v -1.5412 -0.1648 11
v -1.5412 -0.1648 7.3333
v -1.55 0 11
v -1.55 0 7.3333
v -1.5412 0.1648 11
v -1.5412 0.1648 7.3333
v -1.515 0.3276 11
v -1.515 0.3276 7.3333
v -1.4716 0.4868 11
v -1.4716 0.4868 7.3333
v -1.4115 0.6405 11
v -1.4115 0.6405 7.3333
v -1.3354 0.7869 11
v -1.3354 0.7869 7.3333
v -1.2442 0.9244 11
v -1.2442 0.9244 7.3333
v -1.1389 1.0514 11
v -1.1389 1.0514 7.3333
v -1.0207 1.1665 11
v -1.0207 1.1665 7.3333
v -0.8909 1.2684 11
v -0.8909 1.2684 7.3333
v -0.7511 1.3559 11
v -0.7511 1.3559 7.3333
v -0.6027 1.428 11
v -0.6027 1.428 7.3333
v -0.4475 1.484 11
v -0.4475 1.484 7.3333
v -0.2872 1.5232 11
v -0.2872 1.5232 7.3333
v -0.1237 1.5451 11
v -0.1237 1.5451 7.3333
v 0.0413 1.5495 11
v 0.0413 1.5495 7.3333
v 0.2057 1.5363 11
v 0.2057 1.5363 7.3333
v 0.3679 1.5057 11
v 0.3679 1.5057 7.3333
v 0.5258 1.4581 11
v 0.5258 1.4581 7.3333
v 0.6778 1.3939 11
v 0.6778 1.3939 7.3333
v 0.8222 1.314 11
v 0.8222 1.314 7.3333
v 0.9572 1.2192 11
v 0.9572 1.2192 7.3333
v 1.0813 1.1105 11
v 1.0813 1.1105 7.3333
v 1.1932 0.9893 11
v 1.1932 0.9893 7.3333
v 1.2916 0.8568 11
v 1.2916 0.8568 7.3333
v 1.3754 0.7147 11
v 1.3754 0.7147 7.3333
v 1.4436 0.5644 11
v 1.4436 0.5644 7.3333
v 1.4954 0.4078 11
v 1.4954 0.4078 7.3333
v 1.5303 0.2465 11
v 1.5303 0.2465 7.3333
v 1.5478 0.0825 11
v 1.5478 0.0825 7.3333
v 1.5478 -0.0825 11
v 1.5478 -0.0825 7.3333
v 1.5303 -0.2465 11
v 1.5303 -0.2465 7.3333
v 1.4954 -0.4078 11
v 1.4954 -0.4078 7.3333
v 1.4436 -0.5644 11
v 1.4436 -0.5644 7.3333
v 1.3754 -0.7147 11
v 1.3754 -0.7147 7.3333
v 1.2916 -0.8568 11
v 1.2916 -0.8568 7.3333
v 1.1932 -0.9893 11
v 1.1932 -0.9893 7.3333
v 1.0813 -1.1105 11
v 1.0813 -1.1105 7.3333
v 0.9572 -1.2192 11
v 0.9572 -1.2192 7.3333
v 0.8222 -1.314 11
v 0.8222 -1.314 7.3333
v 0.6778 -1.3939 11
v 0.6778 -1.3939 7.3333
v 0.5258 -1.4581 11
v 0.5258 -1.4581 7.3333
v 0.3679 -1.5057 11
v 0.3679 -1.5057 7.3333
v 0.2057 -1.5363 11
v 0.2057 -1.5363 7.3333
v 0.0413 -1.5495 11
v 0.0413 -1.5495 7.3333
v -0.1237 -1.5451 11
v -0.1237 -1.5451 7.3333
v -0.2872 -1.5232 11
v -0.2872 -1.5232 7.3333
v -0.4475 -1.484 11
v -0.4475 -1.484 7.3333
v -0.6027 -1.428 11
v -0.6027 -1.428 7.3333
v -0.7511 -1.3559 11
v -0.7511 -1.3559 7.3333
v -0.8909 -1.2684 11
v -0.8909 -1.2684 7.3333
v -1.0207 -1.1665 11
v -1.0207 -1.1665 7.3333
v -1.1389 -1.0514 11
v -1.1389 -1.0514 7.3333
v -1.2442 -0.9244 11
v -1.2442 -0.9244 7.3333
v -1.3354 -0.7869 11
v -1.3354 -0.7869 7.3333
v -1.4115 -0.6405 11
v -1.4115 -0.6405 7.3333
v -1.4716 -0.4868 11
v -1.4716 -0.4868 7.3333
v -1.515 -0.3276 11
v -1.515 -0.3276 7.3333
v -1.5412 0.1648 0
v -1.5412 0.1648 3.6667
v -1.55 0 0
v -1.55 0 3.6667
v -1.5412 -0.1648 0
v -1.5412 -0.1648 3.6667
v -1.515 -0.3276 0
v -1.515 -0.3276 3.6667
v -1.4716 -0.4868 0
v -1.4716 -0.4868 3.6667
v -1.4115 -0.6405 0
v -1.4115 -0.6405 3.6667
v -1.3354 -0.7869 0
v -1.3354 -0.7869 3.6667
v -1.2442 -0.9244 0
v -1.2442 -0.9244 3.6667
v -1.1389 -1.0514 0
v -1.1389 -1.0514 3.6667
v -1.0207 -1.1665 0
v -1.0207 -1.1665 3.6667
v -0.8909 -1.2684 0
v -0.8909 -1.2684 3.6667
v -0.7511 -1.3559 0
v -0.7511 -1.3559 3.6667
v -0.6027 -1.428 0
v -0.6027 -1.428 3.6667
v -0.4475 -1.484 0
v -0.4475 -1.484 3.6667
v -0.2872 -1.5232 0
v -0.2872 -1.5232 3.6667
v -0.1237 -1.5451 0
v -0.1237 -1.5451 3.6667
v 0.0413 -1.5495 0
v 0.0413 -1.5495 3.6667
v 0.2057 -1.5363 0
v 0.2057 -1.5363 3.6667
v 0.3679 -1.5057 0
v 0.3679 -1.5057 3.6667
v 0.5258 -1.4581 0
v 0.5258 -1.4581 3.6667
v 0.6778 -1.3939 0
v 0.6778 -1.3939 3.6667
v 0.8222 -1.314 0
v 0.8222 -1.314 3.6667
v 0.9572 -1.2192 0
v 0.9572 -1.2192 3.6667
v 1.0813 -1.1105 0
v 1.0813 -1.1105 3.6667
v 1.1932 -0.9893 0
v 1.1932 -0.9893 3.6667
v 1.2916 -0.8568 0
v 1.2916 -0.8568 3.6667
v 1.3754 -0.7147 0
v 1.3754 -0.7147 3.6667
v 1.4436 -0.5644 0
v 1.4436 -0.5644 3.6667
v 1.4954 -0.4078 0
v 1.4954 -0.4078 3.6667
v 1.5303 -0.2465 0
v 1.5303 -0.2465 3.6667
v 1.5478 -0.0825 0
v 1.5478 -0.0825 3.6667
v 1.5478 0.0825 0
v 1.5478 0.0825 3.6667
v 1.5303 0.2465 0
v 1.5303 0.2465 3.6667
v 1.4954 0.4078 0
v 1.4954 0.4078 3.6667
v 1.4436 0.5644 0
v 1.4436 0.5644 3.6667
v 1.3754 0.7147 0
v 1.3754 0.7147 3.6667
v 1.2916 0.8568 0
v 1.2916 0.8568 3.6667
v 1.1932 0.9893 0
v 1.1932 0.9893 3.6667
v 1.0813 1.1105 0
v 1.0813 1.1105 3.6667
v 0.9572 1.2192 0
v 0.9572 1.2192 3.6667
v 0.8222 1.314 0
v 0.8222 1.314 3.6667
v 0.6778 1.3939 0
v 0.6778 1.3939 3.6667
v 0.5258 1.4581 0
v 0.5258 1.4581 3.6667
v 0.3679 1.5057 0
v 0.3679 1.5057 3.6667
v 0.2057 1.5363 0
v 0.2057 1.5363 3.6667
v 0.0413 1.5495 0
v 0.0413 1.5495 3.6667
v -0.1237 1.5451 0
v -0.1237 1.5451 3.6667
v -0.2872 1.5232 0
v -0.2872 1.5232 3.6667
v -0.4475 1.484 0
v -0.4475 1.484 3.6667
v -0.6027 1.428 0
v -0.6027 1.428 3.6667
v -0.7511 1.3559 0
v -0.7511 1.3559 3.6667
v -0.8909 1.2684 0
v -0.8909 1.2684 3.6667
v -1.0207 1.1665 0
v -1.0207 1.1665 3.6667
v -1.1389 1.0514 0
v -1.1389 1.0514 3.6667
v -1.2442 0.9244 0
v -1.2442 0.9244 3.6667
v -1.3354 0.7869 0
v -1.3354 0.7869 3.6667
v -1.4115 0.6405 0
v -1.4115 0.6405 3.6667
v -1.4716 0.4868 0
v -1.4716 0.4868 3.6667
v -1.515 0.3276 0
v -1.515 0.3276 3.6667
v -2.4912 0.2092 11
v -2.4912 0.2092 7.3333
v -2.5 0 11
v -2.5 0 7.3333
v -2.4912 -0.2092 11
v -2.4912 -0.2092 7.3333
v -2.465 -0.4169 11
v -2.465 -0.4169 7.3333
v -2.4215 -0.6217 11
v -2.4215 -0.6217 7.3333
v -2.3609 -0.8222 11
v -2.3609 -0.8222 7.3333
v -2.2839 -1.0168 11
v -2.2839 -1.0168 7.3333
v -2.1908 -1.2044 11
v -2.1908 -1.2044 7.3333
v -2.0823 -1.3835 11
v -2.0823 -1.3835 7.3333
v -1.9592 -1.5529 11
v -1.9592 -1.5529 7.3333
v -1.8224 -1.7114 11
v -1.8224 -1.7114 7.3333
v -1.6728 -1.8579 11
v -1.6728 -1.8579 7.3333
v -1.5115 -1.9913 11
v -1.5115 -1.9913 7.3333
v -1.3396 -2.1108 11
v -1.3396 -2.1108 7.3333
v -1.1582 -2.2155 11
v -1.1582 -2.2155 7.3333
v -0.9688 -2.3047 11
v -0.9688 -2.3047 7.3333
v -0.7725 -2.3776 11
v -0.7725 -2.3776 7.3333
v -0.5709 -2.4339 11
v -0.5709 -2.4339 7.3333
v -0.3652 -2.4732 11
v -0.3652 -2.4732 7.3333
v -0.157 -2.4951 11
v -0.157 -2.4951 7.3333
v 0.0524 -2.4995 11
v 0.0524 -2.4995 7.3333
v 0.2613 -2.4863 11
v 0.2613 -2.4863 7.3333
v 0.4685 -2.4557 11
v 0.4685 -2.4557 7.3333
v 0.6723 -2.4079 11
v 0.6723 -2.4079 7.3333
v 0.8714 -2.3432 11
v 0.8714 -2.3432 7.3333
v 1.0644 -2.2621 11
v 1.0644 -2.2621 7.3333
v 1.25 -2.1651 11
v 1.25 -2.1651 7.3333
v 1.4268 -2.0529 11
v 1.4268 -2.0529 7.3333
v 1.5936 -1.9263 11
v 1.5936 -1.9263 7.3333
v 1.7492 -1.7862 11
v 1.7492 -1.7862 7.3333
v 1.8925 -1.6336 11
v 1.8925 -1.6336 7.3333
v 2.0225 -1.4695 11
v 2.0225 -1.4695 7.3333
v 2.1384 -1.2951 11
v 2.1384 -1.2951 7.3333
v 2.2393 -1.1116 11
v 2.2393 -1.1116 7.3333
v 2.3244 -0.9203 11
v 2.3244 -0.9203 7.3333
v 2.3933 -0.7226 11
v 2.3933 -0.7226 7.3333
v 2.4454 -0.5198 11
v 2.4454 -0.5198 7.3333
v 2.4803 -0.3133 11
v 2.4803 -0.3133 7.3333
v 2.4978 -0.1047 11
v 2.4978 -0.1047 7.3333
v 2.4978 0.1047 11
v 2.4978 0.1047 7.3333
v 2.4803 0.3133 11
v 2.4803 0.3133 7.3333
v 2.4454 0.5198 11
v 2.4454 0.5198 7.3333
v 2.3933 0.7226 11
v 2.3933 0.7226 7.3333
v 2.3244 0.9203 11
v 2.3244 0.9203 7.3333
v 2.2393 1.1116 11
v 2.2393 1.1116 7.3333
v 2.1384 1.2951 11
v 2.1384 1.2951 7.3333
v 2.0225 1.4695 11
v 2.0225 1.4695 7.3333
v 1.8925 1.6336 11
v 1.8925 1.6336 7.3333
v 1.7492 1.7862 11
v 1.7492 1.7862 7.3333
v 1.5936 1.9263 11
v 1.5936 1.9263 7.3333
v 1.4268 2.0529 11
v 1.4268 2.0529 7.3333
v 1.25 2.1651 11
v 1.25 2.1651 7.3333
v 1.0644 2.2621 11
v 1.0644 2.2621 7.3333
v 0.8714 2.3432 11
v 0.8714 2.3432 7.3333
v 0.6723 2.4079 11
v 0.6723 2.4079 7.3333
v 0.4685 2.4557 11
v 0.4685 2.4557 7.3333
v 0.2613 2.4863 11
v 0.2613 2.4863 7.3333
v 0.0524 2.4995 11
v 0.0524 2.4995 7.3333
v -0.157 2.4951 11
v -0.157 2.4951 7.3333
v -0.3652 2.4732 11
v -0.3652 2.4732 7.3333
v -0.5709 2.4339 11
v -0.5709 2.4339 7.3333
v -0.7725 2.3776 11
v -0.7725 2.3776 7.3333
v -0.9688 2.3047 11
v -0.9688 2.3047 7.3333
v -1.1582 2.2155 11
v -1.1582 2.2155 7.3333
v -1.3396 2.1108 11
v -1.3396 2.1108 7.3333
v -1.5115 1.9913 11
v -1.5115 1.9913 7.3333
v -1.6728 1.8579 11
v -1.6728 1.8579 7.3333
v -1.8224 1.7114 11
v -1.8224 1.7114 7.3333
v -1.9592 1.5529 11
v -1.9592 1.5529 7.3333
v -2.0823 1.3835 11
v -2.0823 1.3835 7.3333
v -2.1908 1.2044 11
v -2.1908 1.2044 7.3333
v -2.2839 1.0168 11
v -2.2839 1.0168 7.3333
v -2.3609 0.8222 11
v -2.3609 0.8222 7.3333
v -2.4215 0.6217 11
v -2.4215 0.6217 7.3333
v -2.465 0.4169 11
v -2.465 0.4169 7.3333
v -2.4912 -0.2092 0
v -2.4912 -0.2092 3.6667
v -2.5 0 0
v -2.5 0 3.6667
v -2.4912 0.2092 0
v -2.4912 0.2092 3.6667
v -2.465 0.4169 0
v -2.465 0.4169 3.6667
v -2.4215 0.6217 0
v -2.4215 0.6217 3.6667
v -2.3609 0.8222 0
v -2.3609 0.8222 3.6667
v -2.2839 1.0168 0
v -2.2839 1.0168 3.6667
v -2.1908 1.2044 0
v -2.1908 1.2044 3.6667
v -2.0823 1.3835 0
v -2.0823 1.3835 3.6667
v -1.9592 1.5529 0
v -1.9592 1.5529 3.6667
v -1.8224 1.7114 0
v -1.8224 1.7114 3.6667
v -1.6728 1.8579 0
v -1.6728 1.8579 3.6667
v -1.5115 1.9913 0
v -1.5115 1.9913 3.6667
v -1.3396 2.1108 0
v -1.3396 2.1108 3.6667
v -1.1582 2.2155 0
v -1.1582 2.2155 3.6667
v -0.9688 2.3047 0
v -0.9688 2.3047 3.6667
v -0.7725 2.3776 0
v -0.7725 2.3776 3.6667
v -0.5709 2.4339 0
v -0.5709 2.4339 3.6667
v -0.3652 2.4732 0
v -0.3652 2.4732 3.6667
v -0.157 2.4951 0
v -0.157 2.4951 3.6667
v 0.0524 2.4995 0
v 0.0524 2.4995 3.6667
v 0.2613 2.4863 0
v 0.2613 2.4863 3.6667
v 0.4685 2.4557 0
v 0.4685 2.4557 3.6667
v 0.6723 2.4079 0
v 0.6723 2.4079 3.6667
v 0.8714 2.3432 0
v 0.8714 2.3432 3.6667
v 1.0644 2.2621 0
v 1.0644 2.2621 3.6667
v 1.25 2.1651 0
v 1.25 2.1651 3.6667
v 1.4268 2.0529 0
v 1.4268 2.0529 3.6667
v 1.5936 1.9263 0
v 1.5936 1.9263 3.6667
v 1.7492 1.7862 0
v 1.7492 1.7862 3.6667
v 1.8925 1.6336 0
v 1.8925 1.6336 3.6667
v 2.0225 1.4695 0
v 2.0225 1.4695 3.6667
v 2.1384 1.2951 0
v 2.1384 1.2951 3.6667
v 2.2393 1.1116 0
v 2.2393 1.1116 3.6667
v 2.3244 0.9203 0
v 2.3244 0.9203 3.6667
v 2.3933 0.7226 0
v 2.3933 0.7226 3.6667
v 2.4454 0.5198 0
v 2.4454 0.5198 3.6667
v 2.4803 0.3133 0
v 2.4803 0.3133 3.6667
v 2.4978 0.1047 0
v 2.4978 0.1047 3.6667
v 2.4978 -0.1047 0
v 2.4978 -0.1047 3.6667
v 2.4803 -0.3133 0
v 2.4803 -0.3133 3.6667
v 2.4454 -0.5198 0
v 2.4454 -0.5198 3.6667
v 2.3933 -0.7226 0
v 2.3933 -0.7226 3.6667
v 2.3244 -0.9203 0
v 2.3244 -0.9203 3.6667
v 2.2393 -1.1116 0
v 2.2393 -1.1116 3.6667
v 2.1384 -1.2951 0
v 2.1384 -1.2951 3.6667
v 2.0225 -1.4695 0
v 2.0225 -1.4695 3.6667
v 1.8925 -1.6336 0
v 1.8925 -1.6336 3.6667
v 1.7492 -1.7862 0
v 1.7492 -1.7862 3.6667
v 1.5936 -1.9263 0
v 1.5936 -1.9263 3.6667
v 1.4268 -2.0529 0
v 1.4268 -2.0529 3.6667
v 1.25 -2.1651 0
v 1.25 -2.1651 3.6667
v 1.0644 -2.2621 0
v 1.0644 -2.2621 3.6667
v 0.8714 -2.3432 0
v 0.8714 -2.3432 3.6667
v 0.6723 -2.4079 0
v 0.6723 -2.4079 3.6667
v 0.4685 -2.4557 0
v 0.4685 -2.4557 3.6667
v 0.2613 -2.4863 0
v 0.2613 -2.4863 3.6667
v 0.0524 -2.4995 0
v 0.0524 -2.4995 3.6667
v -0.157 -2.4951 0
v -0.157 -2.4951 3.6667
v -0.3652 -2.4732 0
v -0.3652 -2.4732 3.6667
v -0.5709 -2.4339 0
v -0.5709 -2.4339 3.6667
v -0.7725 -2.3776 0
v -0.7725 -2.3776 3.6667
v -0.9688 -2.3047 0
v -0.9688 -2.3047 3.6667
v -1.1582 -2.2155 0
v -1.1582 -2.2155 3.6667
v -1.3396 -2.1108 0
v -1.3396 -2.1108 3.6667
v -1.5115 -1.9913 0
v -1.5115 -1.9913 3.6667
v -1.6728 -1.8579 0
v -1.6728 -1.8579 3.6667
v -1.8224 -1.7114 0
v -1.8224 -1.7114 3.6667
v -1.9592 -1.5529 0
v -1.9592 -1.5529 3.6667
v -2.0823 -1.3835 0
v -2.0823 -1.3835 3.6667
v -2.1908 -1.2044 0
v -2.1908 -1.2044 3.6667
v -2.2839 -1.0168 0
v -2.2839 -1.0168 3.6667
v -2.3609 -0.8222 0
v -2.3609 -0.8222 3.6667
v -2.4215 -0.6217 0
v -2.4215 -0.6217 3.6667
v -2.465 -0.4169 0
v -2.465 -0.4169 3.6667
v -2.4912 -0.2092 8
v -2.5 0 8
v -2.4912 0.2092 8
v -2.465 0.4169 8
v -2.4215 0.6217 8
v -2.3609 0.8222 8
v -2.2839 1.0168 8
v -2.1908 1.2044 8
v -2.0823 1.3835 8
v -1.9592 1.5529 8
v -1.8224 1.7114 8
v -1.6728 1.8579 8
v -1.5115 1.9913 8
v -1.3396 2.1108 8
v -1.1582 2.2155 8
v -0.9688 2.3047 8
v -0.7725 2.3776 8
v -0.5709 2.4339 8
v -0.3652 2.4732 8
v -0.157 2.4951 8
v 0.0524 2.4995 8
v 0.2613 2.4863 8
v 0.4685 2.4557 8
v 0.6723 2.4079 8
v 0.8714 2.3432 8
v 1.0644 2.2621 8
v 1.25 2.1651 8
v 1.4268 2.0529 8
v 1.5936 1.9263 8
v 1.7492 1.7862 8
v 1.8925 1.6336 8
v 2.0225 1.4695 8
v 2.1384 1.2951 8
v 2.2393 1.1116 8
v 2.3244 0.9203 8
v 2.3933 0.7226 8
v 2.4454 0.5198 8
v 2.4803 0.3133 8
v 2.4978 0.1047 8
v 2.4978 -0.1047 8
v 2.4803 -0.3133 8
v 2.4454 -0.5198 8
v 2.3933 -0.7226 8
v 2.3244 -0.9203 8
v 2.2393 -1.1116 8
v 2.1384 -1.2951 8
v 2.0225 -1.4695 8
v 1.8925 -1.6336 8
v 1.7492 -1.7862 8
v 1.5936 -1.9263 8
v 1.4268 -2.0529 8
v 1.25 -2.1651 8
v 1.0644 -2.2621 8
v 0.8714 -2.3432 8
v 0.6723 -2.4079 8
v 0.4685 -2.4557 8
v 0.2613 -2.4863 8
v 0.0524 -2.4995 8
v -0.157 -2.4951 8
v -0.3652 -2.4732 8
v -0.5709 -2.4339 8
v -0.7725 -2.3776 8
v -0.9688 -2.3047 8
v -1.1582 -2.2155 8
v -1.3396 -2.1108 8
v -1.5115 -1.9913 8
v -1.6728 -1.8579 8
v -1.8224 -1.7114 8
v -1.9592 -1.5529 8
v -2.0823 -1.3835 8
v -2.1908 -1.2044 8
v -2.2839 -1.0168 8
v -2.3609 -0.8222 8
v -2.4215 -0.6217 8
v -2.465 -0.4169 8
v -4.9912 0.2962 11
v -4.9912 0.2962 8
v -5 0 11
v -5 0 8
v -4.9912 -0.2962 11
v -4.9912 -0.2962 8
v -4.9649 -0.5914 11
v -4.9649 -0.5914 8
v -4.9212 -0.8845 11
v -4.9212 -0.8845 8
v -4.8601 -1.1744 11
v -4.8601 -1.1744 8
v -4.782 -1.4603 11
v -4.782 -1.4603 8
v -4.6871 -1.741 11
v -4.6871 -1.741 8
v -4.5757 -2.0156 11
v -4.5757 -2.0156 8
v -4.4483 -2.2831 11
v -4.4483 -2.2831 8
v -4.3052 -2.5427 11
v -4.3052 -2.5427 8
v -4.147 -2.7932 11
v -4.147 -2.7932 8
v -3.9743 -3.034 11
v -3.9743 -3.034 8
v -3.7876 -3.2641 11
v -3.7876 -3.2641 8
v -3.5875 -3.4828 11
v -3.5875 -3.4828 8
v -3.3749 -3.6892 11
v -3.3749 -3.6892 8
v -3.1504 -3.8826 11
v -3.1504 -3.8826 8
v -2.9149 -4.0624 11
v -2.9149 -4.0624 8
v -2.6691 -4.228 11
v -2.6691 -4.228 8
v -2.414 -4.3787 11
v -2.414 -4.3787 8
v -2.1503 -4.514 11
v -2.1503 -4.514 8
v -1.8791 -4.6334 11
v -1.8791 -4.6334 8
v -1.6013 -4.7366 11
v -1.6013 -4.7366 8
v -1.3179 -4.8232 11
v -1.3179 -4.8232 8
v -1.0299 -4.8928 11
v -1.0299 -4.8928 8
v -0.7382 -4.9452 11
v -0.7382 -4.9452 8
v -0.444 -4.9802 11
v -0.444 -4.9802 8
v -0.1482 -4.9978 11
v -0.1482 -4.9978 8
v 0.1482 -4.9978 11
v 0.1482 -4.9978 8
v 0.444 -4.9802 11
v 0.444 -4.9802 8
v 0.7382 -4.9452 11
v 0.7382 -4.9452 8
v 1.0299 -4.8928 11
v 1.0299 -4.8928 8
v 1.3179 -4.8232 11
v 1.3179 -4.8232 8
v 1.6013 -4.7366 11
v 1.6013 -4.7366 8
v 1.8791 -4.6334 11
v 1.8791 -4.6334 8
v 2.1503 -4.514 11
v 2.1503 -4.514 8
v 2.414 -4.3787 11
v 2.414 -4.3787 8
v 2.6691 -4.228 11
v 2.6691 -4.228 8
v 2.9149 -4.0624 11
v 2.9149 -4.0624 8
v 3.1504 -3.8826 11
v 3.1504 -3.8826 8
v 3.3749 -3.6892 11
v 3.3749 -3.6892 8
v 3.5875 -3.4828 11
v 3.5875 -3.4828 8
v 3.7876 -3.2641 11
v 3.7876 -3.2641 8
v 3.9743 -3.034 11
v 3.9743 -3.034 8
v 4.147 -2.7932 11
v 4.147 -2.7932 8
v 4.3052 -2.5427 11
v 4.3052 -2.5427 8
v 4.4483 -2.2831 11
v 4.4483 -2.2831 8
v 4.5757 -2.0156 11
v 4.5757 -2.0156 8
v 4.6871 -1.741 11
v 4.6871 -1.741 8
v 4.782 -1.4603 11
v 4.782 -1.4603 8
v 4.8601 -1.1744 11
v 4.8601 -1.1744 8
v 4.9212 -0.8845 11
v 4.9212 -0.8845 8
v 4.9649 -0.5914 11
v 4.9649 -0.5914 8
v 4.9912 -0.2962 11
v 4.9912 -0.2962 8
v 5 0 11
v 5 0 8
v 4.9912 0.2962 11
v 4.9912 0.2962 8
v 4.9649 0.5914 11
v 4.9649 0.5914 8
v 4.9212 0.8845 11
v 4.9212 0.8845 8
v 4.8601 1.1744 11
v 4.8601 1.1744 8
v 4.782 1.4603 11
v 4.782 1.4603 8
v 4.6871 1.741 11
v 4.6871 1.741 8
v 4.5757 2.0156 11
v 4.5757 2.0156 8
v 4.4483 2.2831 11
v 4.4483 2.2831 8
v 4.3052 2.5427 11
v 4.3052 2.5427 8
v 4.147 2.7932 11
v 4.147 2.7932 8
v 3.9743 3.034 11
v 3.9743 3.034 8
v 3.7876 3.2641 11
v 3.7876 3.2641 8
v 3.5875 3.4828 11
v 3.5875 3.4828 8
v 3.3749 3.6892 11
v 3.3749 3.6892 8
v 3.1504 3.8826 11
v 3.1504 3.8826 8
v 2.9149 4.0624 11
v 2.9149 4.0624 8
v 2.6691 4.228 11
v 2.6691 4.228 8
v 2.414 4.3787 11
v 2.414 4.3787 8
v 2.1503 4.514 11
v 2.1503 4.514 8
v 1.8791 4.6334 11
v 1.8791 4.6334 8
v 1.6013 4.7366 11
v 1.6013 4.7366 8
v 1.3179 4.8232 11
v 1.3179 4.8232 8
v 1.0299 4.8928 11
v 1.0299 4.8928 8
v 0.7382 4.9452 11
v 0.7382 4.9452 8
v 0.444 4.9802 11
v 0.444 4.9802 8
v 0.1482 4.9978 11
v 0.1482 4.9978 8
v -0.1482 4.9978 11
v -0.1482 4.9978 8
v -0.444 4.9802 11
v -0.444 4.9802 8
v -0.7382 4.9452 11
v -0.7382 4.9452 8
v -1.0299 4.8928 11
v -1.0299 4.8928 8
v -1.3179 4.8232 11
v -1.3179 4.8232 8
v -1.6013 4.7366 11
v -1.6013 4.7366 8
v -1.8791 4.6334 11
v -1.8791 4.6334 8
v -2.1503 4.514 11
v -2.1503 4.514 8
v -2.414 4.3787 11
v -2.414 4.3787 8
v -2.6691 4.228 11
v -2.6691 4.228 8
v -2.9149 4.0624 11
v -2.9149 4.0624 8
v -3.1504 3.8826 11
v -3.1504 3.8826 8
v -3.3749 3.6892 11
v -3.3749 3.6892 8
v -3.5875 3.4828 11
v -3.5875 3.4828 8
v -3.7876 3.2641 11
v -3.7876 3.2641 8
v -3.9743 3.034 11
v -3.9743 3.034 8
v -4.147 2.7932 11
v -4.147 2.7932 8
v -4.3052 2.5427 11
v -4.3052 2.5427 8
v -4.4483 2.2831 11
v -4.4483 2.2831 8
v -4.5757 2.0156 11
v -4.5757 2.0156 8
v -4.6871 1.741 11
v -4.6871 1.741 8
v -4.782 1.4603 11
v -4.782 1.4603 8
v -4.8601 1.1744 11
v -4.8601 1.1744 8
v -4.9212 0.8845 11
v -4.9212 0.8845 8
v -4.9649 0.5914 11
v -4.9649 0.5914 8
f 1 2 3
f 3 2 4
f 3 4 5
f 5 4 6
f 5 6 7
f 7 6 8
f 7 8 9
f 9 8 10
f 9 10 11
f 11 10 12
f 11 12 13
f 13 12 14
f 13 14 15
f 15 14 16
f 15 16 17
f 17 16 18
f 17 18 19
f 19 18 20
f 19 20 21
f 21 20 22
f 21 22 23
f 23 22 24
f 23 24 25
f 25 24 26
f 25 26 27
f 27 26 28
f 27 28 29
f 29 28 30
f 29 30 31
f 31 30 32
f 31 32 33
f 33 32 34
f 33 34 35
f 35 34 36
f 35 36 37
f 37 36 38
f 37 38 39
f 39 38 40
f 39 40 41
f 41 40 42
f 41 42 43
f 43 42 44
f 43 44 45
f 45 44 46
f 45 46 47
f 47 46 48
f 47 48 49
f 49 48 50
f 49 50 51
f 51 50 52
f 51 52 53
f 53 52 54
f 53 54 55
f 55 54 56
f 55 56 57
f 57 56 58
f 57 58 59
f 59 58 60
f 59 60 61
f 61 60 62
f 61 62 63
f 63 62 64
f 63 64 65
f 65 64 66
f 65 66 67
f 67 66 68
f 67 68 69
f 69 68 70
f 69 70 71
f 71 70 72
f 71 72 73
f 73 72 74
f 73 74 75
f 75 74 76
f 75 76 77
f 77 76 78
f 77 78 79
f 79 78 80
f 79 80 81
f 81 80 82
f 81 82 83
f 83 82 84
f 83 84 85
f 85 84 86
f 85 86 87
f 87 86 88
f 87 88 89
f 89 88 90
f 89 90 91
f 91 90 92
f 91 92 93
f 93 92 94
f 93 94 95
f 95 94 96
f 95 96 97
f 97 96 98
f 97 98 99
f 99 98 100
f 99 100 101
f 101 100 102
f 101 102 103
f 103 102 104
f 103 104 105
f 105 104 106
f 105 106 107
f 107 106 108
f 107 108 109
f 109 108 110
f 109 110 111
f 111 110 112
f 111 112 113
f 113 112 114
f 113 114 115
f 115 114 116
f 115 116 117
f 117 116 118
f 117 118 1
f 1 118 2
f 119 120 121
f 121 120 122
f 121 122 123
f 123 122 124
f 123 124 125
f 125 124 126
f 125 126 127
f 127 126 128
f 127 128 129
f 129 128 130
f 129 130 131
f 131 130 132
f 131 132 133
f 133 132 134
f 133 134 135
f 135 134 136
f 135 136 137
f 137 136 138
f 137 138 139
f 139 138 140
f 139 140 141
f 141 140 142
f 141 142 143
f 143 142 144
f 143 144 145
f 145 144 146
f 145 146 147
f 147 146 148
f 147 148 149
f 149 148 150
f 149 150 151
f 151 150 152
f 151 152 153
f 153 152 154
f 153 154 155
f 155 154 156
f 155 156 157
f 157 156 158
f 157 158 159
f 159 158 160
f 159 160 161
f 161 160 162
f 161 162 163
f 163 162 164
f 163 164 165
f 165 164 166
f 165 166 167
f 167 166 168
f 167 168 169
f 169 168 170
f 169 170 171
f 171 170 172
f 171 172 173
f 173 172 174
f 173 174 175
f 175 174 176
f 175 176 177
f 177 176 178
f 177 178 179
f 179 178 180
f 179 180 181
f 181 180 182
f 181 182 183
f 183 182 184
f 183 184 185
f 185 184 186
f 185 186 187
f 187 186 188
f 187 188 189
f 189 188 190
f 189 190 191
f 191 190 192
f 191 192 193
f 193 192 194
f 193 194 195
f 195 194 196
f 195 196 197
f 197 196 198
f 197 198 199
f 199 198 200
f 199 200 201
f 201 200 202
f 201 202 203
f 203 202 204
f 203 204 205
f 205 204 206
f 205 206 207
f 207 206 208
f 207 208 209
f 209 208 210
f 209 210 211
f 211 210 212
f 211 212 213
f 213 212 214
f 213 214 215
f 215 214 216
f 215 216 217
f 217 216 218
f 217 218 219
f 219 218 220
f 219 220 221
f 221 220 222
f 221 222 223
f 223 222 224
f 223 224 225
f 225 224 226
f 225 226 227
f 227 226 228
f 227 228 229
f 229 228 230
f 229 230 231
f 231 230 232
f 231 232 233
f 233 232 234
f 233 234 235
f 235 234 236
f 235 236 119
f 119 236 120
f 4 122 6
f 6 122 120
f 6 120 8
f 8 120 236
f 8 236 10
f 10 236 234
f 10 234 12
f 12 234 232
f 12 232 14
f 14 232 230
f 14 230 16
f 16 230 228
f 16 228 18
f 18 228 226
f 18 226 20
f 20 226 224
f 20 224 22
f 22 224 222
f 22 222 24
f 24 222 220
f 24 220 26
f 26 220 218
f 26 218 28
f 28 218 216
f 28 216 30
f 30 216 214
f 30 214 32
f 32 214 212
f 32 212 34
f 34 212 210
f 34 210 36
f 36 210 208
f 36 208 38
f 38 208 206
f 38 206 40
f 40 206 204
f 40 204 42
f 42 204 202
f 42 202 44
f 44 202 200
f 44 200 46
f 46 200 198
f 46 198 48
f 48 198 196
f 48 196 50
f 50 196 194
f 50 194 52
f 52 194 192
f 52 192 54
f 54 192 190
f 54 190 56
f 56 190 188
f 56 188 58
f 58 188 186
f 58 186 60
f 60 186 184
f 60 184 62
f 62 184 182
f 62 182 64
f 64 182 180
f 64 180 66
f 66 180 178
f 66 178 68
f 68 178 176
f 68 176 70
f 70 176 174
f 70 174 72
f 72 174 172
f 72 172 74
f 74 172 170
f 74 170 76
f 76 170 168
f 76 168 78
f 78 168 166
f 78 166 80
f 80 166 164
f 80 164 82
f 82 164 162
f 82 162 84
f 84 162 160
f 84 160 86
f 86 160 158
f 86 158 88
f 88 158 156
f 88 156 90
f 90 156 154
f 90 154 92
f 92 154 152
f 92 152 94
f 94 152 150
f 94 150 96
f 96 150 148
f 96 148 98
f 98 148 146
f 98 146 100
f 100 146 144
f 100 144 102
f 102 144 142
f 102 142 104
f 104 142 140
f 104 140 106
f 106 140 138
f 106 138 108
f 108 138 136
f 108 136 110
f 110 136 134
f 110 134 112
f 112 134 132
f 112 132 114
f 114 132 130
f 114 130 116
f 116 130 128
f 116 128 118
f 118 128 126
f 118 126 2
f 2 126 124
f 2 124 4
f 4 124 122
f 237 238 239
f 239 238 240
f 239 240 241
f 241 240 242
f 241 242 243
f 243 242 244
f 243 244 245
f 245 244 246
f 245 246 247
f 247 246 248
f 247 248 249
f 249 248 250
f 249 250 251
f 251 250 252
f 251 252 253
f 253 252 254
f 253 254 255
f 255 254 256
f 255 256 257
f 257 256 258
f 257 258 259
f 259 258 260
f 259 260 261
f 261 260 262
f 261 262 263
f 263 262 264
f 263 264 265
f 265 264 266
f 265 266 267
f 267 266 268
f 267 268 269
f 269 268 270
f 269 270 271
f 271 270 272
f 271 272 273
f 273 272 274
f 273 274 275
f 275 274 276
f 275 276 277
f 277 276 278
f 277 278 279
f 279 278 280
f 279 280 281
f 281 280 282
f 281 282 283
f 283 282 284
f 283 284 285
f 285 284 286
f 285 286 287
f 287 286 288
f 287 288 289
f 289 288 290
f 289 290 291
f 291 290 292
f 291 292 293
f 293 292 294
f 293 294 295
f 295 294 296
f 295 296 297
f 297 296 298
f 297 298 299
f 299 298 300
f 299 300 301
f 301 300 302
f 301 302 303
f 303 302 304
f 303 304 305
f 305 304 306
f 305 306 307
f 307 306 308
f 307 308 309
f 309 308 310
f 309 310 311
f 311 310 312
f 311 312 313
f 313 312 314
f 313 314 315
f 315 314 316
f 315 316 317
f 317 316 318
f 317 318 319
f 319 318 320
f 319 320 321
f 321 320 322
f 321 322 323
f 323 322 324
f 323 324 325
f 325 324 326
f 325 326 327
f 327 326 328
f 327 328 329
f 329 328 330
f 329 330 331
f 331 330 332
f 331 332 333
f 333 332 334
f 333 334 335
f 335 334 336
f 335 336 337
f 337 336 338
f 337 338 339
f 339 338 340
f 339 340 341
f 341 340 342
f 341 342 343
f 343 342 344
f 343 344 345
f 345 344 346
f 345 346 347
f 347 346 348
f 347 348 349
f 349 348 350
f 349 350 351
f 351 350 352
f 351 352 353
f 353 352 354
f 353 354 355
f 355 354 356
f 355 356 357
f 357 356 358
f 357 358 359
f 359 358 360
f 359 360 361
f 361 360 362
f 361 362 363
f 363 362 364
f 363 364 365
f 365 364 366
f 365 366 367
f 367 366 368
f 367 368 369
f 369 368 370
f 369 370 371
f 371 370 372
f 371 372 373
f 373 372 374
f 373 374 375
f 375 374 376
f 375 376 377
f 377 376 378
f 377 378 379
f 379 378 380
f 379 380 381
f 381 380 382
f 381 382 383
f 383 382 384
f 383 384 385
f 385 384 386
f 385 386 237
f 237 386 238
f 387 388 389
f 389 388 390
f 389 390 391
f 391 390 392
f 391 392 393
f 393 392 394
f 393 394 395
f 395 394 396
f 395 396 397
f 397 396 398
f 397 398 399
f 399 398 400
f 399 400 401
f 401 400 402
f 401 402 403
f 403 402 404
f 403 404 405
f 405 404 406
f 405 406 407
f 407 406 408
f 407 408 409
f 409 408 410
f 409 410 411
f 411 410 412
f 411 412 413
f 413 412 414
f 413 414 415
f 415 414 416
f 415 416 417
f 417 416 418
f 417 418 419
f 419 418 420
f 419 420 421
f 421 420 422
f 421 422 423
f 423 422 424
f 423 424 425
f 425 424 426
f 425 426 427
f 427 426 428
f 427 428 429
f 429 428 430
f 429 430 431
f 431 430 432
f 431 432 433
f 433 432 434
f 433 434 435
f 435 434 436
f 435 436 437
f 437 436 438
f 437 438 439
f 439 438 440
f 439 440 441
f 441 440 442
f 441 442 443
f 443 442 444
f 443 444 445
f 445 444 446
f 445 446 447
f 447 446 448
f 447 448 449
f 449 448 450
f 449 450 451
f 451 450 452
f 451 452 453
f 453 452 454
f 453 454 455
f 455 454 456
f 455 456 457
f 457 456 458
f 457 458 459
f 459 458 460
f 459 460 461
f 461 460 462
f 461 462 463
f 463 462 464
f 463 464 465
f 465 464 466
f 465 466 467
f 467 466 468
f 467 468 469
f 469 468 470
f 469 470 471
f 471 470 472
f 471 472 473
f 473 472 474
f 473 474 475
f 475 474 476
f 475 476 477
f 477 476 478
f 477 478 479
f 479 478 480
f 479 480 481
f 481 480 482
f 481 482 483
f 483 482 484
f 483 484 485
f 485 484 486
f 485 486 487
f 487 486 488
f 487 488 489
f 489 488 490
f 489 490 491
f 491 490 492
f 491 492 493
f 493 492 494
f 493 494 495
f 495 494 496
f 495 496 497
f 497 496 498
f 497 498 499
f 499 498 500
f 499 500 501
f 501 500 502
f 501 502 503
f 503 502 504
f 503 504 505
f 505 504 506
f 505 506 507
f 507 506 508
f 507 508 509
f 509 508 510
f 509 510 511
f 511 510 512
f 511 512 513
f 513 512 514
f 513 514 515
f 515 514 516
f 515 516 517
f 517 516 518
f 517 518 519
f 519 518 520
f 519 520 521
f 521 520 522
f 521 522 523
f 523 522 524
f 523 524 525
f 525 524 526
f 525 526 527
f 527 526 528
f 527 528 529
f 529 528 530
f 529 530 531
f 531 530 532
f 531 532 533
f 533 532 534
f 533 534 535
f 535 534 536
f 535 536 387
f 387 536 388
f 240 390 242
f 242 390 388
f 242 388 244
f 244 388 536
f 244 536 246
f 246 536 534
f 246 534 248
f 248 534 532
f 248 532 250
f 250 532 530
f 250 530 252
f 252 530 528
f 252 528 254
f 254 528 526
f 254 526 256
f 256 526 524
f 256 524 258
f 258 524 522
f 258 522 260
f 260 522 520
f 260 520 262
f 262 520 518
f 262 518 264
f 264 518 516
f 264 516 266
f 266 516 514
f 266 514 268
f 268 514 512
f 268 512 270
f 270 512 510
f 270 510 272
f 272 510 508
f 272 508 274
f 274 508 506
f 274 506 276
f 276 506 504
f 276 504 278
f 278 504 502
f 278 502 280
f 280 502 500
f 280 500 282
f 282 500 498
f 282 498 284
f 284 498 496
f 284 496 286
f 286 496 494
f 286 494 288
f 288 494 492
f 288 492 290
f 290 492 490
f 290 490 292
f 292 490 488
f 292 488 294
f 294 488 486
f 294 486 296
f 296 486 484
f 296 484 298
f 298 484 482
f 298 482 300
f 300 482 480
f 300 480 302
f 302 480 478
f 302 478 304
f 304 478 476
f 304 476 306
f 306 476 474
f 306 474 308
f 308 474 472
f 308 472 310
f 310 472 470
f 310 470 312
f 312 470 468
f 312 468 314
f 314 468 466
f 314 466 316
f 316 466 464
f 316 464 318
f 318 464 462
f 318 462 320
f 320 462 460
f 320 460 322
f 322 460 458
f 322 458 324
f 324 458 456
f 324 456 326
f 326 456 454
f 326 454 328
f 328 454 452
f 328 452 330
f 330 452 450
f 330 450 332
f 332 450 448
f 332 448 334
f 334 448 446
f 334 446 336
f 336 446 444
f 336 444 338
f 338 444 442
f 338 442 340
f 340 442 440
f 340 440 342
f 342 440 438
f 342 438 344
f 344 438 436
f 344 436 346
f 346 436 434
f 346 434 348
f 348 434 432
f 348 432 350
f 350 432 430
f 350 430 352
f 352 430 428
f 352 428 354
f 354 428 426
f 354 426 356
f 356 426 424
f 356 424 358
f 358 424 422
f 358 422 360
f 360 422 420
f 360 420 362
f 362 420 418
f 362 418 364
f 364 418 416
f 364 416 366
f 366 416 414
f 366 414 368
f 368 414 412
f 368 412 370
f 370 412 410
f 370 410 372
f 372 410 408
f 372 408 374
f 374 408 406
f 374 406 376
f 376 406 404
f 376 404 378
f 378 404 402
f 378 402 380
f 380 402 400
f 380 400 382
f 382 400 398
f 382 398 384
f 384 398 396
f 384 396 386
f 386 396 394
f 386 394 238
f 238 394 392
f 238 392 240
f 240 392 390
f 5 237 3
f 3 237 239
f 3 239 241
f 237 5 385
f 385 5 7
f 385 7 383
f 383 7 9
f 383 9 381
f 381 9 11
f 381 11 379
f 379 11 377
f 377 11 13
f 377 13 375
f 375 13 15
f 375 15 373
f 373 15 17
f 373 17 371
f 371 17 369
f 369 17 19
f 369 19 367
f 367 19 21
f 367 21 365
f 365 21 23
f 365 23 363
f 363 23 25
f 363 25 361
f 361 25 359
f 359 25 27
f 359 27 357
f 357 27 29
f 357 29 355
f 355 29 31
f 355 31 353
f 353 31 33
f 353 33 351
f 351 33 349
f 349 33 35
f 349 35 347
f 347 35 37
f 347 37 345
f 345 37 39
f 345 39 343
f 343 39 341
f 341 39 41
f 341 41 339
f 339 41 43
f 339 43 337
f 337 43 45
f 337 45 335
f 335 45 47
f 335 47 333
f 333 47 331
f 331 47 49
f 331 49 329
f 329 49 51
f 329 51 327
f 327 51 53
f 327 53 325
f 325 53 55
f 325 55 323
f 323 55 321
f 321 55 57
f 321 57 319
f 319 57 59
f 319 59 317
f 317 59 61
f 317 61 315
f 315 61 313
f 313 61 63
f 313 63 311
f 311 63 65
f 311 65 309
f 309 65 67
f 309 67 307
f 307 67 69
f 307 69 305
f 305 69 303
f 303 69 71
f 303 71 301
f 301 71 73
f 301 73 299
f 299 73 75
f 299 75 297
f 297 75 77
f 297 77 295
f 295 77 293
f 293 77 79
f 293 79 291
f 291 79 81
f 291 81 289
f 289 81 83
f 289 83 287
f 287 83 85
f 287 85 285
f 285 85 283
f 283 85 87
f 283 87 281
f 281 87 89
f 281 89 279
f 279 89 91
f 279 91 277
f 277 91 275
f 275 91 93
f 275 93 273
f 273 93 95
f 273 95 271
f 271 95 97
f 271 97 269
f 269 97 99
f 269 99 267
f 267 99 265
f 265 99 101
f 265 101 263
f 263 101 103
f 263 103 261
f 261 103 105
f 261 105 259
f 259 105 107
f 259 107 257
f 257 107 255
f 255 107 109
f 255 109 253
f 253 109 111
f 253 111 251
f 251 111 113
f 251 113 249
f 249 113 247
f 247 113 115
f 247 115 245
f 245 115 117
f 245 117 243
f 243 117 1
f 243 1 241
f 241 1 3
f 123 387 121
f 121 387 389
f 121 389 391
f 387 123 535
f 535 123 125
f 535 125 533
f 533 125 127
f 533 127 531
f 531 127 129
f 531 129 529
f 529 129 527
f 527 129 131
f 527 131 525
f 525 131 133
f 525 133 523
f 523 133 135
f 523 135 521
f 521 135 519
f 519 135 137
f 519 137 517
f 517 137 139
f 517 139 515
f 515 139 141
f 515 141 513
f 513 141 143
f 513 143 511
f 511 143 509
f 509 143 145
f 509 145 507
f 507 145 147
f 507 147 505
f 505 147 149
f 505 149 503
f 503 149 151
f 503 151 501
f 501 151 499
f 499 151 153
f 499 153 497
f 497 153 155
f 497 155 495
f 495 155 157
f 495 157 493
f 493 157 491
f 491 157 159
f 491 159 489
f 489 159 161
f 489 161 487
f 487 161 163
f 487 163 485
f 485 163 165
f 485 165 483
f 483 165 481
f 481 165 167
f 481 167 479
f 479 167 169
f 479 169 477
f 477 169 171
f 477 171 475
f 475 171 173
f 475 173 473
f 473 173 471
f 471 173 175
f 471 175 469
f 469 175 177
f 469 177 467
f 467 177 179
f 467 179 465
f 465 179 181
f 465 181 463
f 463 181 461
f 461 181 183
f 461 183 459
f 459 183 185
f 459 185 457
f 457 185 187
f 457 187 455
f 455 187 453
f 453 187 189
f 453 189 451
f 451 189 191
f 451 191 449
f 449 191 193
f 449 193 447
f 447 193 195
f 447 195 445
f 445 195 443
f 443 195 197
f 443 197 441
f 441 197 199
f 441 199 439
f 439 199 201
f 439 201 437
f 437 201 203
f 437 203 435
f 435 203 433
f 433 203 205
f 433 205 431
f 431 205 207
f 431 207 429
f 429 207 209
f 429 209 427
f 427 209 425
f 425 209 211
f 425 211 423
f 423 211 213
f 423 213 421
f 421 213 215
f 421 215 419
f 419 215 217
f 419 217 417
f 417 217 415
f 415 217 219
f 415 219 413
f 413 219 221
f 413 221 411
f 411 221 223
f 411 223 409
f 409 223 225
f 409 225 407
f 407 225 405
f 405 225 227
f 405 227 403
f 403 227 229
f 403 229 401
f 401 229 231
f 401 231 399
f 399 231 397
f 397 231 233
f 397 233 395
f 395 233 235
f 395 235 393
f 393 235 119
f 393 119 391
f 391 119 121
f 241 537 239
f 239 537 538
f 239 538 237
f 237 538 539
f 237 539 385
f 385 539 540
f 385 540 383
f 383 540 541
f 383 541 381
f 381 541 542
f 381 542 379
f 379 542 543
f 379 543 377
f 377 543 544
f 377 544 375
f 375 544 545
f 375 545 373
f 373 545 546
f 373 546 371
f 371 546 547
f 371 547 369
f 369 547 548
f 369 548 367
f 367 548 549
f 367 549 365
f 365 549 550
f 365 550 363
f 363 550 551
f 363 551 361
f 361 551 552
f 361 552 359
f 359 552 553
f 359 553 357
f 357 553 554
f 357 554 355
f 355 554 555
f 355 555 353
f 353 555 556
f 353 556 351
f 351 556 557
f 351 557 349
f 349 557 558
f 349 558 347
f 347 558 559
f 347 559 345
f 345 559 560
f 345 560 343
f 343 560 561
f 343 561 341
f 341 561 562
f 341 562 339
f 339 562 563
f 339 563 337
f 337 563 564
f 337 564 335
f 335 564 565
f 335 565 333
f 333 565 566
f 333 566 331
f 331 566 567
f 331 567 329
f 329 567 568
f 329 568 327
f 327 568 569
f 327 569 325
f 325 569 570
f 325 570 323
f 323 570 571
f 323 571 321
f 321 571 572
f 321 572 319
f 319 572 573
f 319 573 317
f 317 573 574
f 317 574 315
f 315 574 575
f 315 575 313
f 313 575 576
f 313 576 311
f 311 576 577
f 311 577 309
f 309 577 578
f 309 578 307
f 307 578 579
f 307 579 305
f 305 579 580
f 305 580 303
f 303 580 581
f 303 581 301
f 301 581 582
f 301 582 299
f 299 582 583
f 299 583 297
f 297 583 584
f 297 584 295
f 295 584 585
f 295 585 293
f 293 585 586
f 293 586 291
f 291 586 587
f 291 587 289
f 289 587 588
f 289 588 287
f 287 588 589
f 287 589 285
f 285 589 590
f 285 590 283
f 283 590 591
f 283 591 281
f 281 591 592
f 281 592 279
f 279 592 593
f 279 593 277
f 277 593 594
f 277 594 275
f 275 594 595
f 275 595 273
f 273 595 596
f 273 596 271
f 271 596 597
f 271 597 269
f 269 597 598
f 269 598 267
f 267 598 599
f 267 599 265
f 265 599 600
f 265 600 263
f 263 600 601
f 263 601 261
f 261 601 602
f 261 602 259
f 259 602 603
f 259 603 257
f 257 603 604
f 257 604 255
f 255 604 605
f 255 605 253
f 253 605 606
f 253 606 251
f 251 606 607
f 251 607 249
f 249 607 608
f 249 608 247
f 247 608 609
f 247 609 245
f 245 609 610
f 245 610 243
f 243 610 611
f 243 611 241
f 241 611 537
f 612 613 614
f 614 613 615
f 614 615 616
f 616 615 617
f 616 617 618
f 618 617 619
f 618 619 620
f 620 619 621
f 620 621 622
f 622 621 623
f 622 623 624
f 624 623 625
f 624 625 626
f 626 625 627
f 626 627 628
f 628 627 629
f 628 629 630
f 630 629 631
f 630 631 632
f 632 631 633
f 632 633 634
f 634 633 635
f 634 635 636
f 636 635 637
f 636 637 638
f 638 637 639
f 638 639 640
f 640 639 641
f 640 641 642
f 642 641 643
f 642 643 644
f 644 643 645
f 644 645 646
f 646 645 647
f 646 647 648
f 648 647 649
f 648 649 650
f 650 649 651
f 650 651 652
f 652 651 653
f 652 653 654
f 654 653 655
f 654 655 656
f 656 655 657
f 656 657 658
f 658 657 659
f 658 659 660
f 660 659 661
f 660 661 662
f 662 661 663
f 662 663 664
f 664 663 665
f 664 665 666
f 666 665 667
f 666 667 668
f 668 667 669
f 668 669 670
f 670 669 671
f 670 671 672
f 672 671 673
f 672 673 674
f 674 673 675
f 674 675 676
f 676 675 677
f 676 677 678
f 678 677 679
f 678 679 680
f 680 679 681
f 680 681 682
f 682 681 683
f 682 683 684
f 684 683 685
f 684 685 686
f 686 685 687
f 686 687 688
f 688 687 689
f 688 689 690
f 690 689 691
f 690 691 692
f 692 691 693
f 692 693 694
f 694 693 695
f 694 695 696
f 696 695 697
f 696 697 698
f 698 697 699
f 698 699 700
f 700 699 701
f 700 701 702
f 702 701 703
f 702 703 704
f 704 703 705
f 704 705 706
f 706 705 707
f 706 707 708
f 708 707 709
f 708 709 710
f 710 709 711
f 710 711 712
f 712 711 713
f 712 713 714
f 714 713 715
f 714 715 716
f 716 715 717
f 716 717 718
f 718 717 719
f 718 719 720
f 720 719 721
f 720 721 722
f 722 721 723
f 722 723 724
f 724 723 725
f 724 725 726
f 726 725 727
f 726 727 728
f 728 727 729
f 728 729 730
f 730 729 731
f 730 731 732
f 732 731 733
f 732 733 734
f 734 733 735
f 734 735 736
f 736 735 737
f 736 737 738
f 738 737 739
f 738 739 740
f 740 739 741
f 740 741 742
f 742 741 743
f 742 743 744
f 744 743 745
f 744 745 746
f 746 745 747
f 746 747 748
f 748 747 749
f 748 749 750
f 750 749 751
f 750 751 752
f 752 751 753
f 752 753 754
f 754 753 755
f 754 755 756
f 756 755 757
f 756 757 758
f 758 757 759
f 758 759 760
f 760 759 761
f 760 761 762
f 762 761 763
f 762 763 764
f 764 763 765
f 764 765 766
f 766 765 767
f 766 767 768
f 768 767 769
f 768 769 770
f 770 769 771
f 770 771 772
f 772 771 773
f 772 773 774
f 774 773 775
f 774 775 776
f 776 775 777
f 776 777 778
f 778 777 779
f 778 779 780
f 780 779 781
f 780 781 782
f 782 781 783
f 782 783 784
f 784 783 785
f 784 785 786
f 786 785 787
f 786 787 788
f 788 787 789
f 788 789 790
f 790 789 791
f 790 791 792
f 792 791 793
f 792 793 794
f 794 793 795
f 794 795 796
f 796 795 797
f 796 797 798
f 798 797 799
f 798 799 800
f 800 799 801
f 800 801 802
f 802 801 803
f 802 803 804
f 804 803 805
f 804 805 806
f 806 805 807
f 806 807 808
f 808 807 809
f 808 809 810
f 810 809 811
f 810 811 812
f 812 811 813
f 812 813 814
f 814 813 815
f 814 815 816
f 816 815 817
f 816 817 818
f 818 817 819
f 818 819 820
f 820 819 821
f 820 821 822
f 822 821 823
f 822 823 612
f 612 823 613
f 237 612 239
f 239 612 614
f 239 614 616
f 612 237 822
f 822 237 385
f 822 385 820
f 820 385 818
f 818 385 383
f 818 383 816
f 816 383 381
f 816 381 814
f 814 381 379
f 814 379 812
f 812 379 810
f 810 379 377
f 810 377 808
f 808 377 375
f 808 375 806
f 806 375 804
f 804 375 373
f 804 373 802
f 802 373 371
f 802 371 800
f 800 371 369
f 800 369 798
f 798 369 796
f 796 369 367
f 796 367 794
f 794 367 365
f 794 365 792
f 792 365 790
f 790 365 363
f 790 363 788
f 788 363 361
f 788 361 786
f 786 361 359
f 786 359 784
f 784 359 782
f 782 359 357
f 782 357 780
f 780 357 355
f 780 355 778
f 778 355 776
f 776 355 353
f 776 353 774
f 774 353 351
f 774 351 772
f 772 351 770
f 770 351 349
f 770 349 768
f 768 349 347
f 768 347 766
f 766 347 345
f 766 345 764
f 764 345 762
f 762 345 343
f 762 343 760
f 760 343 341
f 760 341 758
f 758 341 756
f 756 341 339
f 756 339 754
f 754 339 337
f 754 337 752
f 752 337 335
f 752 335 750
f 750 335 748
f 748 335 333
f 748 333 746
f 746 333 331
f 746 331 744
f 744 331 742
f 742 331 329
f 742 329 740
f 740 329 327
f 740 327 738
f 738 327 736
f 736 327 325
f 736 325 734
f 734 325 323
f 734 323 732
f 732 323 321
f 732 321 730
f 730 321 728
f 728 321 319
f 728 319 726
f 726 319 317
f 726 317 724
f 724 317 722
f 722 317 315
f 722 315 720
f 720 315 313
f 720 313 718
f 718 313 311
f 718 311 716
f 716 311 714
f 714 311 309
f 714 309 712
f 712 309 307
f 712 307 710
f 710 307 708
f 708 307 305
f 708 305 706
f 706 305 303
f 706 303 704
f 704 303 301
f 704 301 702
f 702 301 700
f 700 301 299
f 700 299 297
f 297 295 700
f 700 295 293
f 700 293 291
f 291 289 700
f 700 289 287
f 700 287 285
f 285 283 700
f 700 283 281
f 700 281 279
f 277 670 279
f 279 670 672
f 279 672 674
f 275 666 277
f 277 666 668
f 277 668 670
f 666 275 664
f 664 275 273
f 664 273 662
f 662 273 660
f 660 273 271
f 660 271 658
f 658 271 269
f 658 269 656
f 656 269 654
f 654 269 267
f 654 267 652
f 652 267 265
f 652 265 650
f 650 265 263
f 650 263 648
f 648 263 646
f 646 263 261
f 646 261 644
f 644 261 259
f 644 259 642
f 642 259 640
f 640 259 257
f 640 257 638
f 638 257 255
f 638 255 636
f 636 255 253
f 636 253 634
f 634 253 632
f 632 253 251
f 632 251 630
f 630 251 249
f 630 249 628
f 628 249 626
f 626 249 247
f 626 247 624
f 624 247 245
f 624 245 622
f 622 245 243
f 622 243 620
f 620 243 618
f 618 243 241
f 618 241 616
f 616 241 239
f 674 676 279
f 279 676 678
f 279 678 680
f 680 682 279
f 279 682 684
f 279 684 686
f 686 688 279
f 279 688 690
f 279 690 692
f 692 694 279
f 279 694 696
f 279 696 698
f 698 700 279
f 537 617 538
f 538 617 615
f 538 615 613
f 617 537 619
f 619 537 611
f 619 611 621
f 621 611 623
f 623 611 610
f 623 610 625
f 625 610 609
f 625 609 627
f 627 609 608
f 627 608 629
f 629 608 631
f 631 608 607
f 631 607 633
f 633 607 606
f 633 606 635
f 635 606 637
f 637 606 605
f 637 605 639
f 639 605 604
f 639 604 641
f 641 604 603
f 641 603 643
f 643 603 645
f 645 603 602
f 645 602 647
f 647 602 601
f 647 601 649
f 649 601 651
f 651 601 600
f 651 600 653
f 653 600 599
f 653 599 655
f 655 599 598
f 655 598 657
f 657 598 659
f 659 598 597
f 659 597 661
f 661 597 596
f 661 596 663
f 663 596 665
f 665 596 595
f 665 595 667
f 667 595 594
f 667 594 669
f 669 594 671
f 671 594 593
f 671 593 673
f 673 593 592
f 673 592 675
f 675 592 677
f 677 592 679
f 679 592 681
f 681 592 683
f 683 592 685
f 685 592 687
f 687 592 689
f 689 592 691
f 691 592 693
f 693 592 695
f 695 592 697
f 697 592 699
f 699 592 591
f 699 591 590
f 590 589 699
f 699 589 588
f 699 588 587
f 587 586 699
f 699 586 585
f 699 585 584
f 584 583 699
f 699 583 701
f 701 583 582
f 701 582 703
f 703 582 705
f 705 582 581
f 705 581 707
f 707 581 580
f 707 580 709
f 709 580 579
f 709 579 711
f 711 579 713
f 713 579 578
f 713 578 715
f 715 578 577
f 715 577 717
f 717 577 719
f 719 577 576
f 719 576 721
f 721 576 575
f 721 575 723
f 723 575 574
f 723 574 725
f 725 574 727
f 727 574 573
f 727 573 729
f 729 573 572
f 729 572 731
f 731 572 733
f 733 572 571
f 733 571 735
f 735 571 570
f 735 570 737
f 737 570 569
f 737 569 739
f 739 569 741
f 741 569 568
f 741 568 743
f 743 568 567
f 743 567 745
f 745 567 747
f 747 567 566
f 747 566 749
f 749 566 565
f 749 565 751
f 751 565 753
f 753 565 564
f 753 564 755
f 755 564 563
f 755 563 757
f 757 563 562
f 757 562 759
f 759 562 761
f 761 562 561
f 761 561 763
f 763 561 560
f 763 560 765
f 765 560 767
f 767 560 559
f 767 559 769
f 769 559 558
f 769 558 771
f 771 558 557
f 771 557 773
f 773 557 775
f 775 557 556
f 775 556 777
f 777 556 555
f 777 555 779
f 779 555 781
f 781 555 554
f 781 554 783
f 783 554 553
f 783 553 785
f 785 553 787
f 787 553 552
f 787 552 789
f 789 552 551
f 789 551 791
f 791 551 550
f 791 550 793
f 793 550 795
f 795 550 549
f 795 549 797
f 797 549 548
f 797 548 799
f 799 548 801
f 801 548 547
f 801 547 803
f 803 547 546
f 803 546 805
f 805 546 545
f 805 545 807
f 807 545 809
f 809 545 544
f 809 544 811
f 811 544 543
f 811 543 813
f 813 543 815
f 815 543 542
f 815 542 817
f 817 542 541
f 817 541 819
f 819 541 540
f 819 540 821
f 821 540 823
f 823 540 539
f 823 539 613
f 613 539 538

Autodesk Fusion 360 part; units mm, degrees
sketch "Sketch1" plane through (0, 0, 0) normal (0, 0, 1) x (1, 0, 0)
  circle A0 centre (0, 0) radius 2.5
  circle A1 centre (0, 0) radius 1.55
  dimension "d1" = 5
  dimension "d2" = 3.1
extrude "Extrude1" add sketch "Sketch1" along normal blind 8 makes body 1
sketch "Sketch2" plane through (0, 0, 8) normal (0, 0, 1) x (1, 0, 0)
  circle A0 centre (0, 0) radius 1.55
  circle A1 centre (0, 0) radius 2.5
  circle A2 centre (0, 0) radius 5
  dimension "d5" = 10
extrude "Extrude2" add sketch "Sketch2" along normal blind 3 separate body contours A2 makes body 2
move_face "OffsetFaces1" offset 3 1 faces at (2.174, -0.1242, 8) on bodies 1
